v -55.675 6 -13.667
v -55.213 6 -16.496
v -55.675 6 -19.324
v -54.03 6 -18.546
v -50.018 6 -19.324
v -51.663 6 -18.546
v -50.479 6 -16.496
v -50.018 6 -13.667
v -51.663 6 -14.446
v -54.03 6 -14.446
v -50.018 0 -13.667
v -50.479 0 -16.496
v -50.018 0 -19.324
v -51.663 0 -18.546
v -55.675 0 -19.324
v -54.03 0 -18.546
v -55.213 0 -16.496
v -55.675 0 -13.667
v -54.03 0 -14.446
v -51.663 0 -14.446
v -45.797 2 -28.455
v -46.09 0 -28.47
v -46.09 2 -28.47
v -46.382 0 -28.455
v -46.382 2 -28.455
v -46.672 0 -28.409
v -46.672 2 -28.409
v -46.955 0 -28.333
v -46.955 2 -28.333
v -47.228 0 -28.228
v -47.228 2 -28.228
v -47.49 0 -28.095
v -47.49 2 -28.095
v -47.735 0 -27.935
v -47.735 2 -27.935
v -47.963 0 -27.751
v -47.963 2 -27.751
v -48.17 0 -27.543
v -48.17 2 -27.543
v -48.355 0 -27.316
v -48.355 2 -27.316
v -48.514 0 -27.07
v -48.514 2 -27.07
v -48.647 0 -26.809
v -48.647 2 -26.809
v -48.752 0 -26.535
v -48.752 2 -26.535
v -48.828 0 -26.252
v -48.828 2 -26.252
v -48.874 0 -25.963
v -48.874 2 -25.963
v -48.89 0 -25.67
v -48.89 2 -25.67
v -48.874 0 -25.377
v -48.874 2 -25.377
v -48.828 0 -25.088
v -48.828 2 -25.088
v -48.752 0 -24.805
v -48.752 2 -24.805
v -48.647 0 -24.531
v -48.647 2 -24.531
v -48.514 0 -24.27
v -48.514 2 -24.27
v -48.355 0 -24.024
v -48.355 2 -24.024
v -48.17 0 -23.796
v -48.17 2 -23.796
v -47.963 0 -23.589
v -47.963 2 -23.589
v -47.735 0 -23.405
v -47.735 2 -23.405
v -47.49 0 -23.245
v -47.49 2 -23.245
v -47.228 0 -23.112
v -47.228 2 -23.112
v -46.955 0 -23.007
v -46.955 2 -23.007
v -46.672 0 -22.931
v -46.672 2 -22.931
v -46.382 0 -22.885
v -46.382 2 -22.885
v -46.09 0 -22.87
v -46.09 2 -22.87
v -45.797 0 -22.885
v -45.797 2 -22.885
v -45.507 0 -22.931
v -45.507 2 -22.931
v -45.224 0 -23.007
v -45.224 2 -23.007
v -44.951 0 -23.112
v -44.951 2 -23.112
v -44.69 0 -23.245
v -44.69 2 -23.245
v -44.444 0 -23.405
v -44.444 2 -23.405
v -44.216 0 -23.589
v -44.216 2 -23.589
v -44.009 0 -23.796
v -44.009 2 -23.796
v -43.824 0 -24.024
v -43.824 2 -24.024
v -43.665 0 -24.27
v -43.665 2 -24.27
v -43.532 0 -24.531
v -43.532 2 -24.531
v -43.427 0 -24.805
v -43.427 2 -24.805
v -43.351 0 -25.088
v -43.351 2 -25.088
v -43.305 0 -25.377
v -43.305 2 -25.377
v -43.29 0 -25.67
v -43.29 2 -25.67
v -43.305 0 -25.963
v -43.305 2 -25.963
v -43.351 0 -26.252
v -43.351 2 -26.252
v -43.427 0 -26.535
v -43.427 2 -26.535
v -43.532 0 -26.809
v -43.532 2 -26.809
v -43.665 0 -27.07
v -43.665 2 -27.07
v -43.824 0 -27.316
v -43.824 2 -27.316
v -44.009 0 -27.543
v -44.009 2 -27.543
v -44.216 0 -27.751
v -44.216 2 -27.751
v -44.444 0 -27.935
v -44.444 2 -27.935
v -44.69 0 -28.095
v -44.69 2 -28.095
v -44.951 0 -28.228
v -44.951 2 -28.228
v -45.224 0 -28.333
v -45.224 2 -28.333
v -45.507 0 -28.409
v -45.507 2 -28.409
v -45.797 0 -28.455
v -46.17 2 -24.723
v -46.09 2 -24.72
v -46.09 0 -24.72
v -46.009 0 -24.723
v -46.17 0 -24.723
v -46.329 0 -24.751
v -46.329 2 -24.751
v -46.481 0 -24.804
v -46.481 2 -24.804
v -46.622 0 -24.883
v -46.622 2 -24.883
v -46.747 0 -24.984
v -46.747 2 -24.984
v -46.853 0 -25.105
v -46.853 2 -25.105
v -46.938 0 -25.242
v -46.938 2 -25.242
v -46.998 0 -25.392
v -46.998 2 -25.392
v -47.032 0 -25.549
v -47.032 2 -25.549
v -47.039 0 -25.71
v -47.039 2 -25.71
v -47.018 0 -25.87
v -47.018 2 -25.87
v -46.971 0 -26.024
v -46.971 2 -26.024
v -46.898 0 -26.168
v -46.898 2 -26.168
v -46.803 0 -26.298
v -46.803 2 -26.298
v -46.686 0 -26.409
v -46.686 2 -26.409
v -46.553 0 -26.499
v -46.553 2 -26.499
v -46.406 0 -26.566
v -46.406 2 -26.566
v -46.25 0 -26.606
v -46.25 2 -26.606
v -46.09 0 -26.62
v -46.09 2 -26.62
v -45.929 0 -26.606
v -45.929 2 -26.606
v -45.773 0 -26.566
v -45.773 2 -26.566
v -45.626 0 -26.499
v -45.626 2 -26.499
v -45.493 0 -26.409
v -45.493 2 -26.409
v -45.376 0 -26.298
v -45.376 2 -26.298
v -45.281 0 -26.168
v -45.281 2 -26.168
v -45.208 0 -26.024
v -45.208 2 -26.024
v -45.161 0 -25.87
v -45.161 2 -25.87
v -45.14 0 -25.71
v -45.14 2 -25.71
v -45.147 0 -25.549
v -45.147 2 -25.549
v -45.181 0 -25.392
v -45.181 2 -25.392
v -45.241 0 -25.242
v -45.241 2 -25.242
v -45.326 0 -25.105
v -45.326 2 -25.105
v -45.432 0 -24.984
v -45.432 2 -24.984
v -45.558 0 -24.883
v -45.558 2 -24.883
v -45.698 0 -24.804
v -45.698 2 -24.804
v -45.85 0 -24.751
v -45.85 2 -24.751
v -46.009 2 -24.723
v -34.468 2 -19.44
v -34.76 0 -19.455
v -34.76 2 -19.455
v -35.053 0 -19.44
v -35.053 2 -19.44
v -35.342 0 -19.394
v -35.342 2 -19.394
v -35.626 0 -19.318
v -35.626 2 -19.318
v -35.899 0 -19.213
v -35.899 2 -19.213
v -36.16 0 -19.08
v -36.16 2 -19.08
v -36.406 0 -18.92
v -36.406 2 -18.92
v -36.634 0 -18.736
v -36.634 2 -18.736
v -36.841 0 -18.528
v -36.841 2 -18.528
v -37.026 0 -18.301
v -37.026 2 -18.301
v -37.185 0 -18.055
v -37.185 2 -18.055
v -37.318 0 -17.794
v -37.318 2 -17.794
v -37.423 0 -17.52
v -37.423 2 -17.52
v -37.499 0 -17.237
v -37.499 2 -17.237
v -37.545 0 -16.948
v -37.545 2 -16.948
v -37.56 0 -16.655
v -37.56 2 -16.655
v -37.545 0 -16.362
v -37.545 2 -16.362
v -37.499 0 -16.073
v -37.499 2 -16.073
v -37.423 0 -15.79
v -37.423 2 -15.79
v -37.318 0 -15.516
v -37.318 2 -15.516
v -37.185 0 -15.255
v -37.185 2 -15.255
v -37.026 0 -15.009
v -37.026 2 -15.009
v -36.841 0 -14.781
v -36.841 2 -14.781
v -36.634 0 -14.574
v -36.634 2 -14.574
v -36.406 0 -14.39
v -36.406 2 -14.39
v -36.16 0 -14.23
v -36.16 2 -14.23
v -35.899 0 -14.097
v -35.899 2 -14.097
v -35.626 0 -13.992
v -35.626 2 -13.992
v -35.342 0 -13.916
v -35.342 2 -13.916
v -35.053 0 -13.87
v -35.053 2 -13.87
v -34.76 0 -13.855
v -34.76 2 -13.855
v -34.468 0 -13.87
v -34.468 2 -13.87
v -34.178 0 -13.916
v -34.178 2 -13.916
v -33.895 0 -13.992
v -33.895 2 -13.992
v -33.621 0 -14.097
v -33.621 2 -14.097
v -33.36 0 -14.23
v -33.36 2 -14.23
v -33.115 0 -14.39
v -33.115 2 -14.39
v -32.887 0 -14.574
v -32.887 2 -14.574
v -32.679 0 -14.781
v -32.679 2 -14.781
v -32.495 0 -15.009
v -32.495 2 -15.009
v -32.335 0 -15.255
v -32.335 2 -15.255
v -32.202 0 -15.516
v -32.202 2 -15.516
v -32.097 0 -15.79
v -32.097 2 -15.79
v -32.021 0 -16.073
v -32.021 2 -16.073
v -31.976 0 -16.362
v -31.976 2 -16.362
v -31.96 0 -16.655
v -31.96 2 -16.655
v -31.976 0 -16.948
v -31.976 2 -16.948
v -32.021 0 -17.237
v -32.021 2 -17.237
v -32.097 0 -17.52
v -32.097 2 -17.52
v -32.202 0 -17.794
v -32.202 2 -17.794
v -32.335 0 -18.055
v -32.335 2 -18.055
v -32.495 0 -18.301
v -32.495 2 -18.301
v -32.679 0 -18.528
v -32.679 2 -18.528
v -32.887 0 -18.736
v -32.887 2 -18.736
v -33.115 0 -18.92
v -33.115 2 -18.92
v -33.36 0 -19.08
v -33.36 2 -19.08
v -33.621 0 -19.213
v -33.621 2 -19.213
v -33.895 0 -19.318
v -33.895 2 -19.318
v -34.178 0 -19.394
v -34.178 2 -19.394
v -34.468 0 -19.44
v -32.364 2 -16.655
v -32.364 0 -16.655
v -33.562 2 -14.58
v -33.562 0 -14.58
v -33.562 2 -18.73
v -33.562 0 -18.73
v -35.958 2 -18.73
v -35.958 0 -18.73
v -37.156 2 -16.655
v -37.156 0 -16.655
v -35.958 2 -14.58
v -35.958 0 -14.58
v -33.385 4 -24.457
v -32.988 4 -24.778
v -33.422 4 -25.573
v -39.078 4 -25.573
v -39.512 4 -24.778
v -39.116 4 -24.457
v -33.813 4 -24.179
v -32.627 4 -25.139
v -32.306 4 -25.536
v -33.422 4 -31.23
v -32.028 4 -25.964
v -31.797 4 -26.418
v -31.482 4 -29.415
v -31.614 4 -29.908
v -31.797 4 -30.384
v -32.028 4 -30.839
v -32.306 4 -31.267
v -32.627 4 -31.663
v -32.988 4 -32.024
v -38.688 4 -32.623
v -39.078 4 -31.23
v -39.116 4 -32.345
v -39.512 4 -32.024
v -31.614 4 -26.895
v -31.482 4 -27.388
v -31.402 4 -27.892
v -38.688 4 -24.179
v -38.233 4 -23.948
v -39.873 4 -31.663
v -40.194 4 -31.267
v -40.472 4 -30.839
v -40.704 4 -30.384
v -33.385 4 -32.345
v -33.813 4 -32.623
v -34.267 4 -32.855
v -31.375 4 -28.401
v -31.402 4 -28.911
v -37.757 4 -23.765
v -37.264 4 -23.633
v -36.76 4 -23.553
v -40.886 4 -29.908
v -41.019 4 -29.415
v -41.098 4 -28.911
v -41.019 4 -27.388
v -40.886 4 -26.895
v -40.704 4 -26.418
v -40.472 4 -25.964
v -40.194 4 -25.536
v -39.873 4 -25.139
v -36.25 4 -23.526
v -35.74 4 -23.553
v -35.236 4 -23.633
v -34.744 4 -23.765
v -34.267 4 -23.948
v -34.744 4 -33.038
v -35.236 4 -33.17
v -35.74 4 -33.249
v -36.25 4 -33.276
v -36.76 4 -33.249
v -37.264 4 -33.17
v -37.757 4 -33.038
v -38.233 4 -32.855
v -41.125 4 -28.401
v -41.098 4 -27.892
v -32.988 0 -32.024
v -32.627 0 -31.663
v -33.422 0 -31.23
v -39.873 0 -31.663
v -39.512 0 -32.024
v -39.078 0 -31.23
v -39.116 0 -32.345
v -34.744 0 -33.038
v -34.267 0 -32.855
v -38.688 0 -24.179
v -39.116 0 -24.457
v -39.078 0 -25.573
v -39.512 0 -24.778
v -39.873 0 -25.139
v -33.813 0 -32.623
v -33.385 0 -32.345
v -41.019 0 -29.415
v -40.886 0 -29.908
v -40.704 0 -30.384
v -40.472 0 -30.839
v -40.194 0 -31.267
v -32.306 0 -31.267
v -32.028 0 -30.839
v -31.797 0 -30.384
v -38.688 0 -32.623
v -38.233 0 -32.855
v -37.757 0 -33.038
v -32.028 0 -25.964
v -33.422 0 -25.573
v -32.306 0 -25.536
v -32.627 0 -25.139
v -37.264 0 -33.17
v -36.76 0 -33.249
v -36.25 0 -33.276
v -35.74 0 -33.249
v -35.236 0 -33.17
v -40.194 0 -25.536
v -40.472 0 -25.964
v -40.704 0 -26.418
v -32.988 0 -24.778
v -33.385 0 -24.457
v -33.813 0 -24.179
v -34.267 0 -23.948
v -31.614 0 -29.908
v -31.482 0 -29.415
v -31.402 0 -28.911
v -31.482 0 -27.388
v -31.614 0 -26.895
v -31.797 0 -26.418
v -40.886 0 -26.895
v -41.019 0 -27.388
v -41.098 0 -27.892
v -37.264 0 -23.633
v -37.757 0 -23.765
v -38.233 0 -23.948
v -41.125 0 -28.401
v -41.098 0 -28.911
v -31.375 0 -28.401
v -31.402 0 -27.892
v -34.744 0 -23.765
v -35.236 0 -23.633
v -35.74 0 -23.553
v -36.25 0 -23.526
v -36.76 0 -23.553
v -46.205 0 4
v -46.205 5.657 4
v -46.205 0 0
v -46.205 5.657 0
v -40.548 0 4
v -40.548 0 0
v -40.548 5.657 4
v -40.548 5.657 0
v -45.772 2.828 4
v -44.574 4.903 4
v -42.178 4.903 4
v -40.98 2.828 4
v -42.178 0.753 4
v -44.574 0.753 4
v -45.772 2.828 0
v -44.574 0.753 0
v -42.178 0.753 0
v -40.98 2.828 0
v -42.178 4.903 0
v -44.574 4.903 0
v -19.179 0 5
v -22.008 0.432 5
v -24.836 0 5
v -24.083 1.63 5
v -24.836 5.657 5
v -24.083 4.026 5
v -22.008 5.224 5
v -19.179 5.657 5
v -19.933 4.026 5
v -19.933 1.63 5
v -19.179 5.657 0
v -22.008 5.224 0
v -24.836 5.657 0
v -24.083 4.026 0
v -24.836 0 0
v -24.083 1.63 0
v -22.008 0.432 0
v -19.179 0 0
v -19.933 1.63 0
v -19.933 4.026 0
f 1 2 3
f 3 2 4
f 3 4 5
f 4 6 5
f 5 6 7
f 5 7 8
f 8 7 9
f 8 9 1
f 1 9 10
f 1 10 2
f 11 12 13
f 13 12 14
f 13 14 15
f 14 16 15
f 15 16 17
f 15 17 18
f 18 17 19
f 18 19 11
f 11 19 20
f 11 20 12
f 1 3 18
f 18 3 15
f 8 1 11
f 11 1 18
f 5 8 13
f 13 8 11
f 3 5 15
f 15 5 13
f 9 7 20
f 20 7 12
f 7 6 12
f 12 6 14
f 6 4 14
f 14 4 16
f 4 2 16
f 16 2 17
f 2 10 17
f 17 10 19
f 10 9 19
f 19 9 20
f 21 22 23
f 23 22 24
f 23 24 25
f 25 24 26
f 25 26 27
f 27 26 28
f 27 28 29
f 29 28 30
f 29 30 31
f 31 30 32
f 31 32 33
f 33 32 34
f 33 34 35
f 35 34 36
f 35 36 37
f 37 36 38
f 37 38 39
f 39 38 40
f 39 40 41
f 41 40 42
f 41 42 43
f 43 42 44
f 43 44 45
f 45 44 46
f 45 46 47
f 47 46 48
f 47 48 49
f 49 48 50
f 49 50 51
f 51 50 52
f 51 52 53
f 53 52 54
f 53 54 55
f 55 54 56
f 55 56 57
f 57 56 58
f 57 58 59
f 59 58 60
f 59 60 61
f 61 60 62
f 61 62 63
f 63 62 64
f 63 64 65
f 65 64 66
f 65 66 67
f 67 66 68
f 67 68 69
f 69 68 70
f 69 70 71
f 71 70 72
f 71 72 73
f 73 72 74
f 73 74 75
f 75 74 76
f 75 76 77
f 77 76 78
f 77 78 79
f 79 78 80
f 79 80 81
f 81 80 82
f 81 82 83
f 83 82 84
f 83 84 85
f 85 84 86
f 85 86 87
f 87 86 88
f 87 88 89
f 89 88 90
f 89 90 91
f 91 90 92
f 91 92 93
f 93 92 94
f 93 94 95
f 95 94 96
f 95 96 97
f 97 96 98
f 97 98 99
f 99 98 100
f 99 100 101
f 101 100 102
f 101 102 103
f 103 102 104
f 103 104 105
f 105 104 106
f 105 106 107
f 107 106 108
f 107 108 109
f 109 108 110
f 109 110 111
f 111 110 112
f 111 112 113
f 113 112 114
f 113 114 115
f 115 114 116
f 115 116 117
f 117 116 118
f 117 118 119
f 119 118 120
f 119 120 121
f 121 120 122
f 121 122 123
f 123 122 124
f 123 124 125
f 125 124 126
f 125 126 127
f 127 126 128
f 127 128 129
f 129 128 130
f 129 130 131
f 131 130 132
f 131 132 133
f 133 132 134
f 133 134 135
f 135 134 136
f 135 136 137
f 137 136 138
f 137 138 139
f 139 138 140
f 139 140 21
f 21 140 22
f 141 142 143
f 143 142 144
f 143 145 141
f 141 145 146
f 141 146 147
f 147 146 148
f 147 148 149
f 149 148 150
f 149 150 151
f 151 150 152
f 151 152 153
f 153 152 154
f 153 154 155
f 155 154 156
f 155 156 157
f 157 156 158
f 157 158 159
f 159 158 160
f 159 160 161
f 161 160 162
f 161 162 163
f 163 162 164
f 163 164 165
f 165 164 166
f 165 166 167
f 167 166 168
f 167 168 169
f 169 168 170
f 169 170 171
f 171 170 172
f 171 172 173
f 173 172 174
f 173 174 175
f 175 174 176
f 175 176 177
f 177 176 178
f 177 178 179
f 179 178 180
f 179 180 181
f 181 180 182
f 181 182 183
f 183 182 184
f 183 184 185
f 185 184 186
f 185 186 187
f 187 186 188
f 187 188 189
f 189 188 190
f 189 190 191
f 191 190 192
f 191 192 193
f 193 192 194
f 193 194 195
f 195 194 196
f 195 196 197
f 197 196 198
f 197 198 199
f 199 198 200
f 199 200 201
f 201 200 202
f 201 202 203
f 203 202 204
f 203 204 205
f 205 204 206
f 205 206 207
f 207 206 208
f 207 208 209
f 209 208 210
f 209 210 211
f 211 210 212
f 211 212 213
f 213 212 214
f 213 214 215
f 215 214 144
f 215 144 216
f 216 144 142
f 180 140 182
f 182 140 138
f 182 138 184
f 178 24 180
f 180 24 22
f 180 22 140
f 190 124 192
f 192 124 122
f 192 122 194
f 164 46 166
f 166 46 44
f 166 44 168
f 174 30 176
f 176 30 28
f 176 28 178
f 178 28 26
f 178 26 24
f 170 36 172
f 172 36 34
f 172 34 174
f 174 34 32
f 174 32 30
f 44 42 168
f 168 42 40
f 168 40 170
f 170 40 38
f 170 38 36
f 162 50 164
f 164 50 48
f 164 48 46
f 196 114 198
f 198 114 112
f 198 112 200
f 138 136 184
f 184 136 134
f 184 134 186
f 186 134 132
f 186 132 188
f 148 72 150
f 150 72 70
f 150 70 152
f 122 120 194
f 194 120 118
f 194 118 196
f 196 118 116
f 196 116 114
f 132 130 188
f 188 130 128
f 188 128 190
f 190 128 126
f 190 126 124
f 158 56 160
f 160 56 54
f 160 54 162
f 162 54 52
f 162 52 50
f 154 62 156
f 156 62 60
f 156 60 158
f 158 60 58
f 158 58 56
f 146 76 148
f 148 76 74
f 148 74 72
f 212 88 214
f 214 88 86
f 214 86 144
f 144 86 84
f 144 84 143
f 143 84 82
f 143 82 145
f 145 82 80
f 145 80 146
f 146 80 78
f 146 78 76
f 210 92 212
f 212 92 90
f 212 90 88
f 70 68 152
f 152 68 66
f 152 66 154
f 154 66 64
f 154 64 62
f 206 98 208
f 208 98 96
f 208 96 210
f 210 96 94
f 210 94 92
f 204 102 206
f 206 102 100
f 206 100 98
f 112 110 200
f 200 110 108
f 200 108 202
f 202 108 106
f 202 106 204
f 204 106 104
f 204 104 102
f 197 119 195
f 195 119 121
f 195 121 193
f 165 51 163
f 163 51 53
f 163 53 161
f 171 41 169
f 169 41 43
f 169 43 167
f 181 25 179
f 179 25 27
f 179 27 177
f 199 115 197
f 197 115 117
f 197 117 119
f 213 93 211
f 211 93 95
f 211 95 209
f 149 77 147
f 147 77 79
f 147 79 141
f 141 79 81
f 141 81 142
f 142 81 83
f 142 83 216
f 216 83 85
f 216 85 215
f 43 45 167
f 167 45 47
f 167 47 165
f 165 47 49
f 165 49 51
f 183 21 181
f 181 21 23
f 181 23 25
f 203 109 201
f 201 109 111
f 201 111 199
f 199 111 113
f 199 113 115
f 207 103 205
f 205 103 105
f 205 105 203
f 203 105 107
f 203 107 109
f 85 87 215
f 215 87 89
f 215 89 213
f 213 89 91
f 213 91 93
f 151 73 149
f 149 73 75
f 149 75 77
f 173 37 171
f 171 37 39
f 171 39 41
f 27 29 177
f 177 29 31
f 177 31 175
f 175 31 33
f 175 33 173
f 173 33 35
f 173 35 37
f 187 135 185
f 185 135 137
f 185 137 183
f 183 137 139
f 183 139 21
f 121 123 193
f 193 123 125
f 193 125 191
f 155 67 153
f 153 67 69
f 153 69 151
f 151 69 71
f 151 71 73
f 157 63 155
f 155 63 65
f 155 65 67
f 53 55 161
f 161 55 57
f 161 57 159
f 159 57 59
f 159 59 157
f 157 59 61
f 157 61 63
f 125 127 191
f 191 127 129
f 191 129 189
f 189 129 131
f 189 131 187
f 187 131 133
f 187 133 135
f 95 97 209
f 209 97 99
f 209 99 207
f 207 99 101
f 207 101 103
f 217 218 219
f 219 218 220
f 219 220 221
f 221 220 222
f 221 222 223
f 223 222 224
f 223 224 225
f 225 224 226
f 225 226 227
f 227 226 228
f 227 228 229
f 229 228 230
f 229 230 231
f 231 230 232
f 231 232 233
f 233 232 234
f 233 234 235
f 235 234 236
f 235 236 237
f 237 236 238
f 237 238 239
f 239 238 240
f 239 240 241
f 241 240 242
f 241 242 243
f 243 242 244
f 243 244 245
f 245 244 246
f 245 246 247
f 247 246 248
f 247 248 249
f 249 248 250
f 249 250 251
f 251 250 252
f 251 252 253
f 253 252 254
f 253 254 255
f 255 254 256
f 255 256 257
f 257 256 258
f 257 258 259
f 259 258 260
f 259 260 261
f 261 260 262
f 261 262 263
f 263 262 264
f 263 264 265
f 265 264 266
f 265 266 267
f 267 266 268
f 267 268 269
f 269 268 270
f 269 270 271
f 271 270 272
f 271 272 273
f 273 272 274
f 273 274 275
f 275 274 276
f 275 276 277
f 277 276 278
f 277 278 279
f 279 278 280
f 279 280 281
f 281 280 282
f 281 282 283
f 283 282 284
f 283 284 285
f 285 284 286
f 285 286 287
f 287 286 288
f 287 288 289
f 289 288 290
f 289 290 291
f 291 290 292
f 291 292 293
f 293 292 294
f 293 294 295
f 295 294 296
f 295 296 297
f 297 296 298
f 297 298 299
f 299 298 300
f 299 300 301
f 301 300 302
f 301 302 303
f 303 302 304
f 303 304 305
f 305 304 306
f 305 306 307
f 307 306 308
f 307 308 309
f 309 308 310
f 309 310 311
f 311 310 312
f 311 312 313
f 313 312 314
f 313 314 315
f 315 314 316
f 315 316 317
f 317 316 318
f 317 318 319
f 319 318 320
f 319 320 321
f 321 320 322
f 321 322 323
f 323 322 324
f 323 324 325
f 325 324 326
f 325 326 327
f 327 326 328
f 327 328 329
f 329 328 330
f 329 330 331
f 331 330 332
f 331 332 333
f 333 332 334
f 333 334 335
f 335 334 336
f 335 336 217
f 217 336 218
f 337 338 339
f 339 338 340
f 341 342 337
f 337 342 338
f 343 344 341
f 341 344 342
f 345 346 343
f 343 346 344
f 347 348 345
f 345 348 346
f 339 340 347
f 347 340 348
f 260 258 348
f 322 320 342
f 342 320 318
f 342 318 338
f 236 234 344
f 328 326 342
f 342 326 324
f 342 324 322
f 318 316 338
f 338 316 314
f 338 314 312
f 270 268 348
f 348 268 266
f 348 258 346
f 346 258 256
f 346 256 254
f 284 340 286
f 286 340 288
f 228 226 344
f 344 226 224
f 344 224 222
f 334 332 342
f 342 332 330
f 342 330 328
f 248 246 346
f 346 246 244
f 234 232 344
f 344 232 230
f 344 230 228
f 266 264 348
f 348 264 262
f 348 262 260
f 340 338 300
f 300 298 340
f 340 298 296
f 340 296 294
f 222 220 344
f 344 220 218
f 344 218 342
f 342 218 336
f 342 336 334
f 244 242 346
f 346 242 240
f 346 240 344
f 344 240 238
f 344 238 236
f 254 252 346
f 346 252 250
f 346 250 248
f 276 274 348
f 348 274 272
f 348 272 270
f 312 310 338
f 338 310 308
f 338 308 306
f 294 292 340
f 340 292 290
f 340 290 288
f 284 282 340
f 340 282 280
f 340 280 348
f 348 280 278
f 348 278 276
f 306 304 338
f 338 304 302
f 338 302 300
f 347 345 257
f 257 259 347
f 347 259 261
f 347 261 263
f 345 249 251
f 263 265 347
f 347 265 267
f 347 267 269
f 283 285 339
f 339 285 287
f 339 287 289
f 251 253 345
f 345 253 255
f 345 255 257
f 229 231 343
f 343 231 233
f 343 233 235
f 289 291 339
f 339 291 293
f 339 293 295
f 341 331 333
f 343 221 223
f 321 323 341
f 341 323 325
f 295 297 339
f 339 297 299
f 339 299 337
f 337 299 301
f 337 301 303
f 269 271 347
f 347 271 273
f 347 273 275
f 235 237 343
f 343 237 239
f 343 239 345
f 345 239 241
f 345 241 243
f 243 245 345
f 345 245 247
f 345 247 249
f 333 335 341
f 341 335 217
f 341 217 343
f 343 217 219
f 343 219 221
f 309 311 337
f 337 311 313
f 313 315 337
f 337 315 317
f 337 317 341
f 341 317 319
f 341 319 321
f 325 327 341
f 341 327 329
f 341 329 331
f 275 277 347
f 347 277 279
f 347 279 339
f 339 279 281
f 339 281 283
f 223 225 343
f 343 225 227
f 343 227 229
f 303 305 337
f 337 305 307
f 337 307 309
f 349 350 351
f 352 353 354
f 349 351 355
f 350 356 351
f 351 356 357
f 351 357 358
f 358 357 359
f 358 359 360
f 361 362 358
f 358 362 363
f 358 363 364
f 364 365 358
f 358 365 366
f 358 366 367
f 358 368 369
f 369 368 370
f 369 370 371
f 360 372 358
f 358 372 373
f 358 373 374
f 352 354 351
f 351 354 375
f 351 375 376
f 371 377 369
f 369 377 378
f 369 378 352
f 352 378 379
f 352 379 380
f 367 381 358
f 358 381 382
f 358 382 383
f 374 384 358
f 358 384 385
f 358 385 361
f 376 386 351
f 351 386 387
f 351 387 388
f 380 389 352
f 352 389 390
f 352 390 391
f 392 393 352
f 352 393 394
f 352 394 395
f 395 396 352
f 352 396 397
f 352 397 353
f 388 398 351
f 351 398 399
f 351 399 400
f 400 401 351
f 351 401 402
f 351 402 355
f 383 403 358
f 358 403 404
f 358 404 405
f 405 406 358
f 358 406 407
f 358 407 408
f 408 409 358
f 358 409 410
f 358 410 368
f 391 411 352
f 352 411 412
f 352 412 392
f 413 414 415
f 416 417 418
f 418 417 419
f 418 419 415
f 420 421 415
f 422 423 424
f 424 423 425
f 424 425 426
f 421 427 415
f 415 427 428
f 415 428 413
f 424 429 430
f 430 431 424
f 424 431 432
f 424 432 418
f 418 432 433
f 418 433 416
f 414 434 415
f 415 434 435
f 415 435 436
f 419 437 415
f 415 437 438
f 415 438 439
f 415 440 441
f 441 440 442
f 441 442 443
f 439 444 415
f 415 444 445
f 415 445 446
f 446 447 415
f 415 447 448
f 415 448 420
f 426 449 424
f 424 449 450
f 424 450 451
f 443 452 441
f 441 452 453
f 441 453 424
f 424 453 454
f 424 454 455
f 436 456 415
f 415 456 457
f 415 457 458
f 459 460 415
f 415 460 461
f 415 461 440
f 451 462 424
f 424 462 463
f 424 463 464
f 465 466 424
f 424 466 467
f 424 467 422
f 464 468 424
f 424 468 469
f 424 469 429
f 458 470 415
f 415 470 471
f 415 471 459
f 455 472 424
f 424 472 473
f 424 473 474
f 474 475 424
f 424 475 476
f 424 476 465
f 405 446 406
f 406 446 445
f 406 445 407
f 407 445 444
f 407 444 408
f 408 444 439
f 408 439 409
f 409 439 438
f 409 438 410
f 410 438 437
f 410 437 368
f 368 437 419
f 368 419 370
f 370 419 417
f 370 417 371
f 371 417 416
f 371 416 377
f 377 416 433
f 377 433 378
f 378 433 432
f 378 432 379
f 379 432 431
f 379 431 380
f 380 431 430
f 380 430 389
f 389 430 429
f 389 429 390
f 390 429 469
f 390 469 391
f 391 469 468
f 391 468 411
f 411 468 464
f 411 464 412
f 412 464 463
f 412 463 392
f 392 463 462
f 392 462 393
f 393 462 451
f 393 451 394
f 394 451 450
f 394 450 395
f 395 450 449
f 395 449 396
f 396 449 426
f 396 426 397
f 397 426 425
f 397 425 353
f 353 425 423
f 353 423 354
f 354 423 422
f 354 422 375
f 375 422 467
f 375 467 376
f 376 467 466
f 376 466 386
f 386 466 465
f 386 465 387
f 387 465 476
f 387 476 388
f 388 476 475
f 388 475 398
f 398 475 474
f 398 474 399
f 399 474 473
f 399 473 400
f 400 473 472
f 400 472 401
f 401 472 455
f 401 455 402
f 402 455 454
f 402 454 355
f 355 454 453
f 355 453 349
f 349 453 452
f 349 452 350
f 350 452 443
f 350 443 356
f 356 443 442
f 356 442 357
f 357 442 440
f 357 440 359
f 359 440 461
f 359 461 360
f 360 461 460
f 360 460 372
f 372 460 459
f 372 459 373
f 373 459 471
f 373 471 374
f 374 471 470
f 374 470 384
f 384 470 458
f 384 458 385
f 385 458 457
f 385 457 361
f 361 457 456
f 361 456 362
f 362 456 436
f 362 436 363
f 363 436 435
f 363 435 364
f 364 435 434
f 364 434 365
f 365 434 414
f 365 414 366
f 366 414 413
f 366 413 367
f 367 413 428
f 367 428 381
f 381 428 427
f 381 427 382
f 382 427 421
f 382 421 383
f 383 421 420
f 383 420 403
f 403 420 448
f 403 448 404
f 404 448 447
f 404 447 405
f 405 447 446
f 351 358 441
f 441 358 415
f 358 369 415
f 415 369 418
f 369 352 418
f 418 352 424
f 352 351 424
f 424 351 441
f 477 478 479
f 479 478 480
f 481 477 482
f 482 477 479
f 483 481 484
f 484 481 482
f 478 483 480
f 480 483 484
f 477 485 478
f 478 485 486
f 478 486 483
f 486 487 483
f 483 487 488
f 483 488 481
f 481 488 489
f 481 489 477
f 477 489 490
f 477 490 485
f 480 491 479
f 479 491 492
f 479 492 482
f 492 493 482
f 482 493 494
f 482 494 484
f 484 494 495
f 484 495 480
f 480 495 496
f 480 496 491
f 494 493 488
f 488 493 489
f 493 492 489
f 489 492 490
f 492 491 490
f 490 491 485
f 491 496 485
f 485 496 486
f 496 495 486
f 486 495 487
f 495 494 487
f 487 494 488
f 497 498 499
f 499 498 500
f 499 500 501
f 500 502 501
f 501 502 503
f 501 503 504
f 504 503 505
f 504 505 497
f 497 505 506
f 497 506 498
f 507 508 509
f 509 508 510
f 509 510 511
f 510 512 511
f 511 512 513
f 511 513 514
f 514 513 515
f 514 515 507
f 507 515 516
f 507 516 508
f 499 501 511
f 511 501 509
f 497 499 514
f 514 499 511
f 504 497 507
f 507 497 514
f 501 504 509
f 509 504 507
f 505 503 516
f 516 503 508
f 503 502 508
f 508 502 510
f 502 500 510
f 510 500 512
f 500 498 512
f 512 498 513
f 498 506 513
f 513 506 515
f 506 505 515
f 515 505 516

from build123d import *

# Parameters (mm, degrees)
SKETCH_1_R          = 2.8
EXTRUDE_1_DEPTH     = 6
SKETCH_1_R_2        = 0.95
EXTRUDE_1_2_DEPTH   = 6
SKETCH_1_W          = 5.656854249
SKETCH_1_H          = 5.65685425
EXTRUDE_1_3_DEPTH   = 6
SKETCH_2_R          = 2.8
CUT_EXTRUDE_1_DEPTH = 4
SKETCH_3_R          = 2.8
CUT_EXTRUDE_2_DEPTH = 4
SKETCH_4_R          = 4.875
SKETCH_4_W          = 5.656854249
SKETCH_4_H          = 5.656854249
EXTRUDE_2_DEPTH     = 4
SKETCH_7_W          = 5.65685425
SKETCH_7_H          = 5.656854249
EXTRUDE_3_DEPTH     = 4
CUT_EXTRUDE_3_DEPTH = 4
SKETCH_6_W          = 5.65685425
SKETCH_6_H          = 5.656854249
EXTRUDE_4_DEPTH     = 4
SKETCH_9_R          = 4.757341929
CUT_EXTRUDE_4_DEPTH = 4
SKETCH_15_W         = 9.812239566
SKETCH_15_H         = 9.127664712
EXTRUDE_5_DEPTH     = 4
CUT_EXTRUDE_5_DEPTH = 4
SKETCH_16_W         = 5.65685425
SKETCH_16_H         = 5.656854249
EXTRUDE_6_DEPTH     = 5


with BuildPart() as part:
    # 草图1 → 凸台-拉伸1 (new body)
    with BuildSketch(Plane(origin=(0, 0, 0), x_dir=(1, 0, 0), z_dir=(0, 1, 0))):
        with Locations((-34.760304923, 16.654905742)):
            Circle(SKETCH_1_R)
        Polygon((-32.364301306, 16.654905742), (-33.562303115, 18.729905742), (-35.958306732, 18.729905742), (-37.156308541, 16.654905742), (-35.958306732, 14.579905742), (-33.562303115, 14.579905742), align=None, mode=Mode.SUBTRACT)
    extrude(amount=EXTRUDE_1_DEPTH)

    # 草图3 → 切除-拉伸2 (cut)
    with BuildSketch(Plane(origin=(0, 6, 0), x_dir=(1, 0, 0), z_dir=(0, 1, 0))):
        with Locations((-34.760304923, 16.654905742)):
            Circle(SKETCH_3_R)
    extrude(amount=-CUT_EXTRUDE_2_DEPTH, mode=Mode.SUBTRACT)


with BuildPart() as body_2:
    # 草图1 → Extrude 1 2 (new body)
    with BuildSketch(Plane(origin=(0, 0, 0), x_dir=(1, 0, 0), z_dir=(0, 1, 0))):
        with Locations((-46.089532079, 25.669899162)):
            Circle(SKETCH_1_R)
        with Locations((-46.089532079, 25.669899162)):
            Circle(SKETCH_1_R_2, mode=Mode.SUBTRACT)
    extrude(amount=EXTRUDE_1_2_DEPTH)

    # 草图2 → 切除-拉伸1 (cut)
    with BuildSketch(Plane(origin=(0, 6, 0), x_dir=(1, 0, 0), z_dir=(0, 1, 0))):
        with Locations((-46.089532079, 25.669899162)):
            Circle(SKETCH_2_R)
    extrude(amount=-CUT_EXTRUDE_1_DEPTH, mode=Mode.SUBTRACT)


with BuildPart() as body_3:
    # 草图1 → Extrude 1 3 (new body)
    with BuildSketch(Plane(origin=(0, 0, 0), x_dir=(1, 0, 0), z_dir=(0, 1, 0))):
        with Locations((-52.84621627, 16.49589495)):
            Rectangle(SKETCH_1_W, SKETCH_1_H)
        Polygon((-50.479080166, 16.49589495), (-51.662648218, 18.54589495), (-54.029784321, 18.54589495), (-55.213352373, 16.49589495), (-54.029784321, 14.44589495), (-51.662648218, 14.44589495), align=None, mode=Mode.SUBTRACT)
    extrude(amount=EXTRUDE_1_3_DEPTH)


with BuildPart() as body_4:
    # 草图4 → 凸台-拉伸2 (new body)
    with BuildSketch(Plane(origin=(0, 0, 0), x_dir=(1, 0, 0), z_dir=(0, 1, 0))):
        with Locations((-36.250063578, 28.401181635)):
            Circle(SKETCH_4_R)
        with Locations((-36.250063578, 28.401181635)):
            Rectangle(SKETCH_4_W, SKETCH_4_H, mode=Mode.SUBTRACT)
    extrude(amount=EXTRUDE_2_DEPTH)


with BuildPart() as body_5:
    # 草图7 → 凸台-拉伸3 (new body)
    with BuildSketch(Plane.XY):
        with Locations((-43.376183392, 2.828427125)):
            Rectangle(SKETCH_7_W, SKETCH_7_H)
    extrude(amount=EXTRUDE_3_DEPTH)

    # 草图8 → 切除-拉伸3 (cut)
    with BuildSketch(Plane.XY.offset(4)):
        Polygon((-40.980179775, 2.828427125), (-42.178181584, 4.903427125), (-44.574185201, 4.903427125), (-45.772187009, 2.828427125), (-44.574185201, 0.753427125), (-42.178181584, 0.753427125), align=None)
    extrude(amount=-CUT_EXTRUDE_3_DEPTH, mode=Mode.SUBTRACT)


with BuildPart() as body_6:
    # 草图6 → 凸台-拉伸4 (new body)
    with BuildSketch(Plane(origin=(0, 0, 0), x_dir=(1, 0, 0), z_dir=(0, 1, 0))):
        with Locations((-43.376183392, 17.525126096)):
            Rectangle(SKETCH_6_W, SKETCH_6_H)
    extrude(amount=EXTRUDE_4_DEPTH)

    # 草图9 → 切除-拉伸4 (cut)
    with BuildSketch(Plane(origin=(0, 4, 0), x_dir=(1, 0, 0), z_dir=(0, 1, 0))):
        with Locations((-43.450707385, 17.511400193)):
            Circle(SKETCH_9_R)
    extrude(amount=-CUT_EXTRUDE_4_DEPTH, mode=Mode.SUBTRACT)


with BuildPart() as body_6_2:
    # 草图15 → 凸台-拉伸5 (new body)
    with BuildSketch(Plane(origin=(0, 0, 0), x_dir=(1, 0, 0), z_dir=(0, 1, 0))):
        with Locations((-19.930146637, 14.162247717)):
            Rectangle(SKETCH_15_W, SKETCH_15_H)
    extrude(amount=EXTRUDE_5_DEPTH)

    # 草图17 → 切除-拉伸5 (cut)
    with BuildSketch(Plane(origin=(0, 4, 0), x_dir=(1, 0, 0), z_dir=(0, 1, 0))):
        Polygon((-26.76182384, 19.295189445), (-26.76182384, 9.470114101), (-13.070399402, 9.470114101), (-13.434291082, 20.705269703), align=None)
    extrude(amount=-CUT_EXTRUDE_5_DEPTH, mode=Mode.SUBTRACT)


with BuildPart() as body_6_3:
    # 草图16 → 凸台-拉伸6 (new body)
    with BuildSketch(Plane.XY):
        with Locations((-22.007839295, 2.828427125)):
            Rectangle(SKETCH_16_W, SKETCH_16_H)
        Polygon((-22.007839295, 5.224430742), (-24.082839295, 4.026428933), (-24.082839295, 1.630425316), (-22.007839295, 0.432423508), (-19.932839295, 1.630425316), (-19.932839295, 4.026428933), align=None, mode=Mode.SUBTRACT)
    extrude(amount=EXTRUDE_6_DEPTH)


solid = Compound([part.part, body_2.part, body_3.part, body_4.part, body_5.part, body_6_3.part])
